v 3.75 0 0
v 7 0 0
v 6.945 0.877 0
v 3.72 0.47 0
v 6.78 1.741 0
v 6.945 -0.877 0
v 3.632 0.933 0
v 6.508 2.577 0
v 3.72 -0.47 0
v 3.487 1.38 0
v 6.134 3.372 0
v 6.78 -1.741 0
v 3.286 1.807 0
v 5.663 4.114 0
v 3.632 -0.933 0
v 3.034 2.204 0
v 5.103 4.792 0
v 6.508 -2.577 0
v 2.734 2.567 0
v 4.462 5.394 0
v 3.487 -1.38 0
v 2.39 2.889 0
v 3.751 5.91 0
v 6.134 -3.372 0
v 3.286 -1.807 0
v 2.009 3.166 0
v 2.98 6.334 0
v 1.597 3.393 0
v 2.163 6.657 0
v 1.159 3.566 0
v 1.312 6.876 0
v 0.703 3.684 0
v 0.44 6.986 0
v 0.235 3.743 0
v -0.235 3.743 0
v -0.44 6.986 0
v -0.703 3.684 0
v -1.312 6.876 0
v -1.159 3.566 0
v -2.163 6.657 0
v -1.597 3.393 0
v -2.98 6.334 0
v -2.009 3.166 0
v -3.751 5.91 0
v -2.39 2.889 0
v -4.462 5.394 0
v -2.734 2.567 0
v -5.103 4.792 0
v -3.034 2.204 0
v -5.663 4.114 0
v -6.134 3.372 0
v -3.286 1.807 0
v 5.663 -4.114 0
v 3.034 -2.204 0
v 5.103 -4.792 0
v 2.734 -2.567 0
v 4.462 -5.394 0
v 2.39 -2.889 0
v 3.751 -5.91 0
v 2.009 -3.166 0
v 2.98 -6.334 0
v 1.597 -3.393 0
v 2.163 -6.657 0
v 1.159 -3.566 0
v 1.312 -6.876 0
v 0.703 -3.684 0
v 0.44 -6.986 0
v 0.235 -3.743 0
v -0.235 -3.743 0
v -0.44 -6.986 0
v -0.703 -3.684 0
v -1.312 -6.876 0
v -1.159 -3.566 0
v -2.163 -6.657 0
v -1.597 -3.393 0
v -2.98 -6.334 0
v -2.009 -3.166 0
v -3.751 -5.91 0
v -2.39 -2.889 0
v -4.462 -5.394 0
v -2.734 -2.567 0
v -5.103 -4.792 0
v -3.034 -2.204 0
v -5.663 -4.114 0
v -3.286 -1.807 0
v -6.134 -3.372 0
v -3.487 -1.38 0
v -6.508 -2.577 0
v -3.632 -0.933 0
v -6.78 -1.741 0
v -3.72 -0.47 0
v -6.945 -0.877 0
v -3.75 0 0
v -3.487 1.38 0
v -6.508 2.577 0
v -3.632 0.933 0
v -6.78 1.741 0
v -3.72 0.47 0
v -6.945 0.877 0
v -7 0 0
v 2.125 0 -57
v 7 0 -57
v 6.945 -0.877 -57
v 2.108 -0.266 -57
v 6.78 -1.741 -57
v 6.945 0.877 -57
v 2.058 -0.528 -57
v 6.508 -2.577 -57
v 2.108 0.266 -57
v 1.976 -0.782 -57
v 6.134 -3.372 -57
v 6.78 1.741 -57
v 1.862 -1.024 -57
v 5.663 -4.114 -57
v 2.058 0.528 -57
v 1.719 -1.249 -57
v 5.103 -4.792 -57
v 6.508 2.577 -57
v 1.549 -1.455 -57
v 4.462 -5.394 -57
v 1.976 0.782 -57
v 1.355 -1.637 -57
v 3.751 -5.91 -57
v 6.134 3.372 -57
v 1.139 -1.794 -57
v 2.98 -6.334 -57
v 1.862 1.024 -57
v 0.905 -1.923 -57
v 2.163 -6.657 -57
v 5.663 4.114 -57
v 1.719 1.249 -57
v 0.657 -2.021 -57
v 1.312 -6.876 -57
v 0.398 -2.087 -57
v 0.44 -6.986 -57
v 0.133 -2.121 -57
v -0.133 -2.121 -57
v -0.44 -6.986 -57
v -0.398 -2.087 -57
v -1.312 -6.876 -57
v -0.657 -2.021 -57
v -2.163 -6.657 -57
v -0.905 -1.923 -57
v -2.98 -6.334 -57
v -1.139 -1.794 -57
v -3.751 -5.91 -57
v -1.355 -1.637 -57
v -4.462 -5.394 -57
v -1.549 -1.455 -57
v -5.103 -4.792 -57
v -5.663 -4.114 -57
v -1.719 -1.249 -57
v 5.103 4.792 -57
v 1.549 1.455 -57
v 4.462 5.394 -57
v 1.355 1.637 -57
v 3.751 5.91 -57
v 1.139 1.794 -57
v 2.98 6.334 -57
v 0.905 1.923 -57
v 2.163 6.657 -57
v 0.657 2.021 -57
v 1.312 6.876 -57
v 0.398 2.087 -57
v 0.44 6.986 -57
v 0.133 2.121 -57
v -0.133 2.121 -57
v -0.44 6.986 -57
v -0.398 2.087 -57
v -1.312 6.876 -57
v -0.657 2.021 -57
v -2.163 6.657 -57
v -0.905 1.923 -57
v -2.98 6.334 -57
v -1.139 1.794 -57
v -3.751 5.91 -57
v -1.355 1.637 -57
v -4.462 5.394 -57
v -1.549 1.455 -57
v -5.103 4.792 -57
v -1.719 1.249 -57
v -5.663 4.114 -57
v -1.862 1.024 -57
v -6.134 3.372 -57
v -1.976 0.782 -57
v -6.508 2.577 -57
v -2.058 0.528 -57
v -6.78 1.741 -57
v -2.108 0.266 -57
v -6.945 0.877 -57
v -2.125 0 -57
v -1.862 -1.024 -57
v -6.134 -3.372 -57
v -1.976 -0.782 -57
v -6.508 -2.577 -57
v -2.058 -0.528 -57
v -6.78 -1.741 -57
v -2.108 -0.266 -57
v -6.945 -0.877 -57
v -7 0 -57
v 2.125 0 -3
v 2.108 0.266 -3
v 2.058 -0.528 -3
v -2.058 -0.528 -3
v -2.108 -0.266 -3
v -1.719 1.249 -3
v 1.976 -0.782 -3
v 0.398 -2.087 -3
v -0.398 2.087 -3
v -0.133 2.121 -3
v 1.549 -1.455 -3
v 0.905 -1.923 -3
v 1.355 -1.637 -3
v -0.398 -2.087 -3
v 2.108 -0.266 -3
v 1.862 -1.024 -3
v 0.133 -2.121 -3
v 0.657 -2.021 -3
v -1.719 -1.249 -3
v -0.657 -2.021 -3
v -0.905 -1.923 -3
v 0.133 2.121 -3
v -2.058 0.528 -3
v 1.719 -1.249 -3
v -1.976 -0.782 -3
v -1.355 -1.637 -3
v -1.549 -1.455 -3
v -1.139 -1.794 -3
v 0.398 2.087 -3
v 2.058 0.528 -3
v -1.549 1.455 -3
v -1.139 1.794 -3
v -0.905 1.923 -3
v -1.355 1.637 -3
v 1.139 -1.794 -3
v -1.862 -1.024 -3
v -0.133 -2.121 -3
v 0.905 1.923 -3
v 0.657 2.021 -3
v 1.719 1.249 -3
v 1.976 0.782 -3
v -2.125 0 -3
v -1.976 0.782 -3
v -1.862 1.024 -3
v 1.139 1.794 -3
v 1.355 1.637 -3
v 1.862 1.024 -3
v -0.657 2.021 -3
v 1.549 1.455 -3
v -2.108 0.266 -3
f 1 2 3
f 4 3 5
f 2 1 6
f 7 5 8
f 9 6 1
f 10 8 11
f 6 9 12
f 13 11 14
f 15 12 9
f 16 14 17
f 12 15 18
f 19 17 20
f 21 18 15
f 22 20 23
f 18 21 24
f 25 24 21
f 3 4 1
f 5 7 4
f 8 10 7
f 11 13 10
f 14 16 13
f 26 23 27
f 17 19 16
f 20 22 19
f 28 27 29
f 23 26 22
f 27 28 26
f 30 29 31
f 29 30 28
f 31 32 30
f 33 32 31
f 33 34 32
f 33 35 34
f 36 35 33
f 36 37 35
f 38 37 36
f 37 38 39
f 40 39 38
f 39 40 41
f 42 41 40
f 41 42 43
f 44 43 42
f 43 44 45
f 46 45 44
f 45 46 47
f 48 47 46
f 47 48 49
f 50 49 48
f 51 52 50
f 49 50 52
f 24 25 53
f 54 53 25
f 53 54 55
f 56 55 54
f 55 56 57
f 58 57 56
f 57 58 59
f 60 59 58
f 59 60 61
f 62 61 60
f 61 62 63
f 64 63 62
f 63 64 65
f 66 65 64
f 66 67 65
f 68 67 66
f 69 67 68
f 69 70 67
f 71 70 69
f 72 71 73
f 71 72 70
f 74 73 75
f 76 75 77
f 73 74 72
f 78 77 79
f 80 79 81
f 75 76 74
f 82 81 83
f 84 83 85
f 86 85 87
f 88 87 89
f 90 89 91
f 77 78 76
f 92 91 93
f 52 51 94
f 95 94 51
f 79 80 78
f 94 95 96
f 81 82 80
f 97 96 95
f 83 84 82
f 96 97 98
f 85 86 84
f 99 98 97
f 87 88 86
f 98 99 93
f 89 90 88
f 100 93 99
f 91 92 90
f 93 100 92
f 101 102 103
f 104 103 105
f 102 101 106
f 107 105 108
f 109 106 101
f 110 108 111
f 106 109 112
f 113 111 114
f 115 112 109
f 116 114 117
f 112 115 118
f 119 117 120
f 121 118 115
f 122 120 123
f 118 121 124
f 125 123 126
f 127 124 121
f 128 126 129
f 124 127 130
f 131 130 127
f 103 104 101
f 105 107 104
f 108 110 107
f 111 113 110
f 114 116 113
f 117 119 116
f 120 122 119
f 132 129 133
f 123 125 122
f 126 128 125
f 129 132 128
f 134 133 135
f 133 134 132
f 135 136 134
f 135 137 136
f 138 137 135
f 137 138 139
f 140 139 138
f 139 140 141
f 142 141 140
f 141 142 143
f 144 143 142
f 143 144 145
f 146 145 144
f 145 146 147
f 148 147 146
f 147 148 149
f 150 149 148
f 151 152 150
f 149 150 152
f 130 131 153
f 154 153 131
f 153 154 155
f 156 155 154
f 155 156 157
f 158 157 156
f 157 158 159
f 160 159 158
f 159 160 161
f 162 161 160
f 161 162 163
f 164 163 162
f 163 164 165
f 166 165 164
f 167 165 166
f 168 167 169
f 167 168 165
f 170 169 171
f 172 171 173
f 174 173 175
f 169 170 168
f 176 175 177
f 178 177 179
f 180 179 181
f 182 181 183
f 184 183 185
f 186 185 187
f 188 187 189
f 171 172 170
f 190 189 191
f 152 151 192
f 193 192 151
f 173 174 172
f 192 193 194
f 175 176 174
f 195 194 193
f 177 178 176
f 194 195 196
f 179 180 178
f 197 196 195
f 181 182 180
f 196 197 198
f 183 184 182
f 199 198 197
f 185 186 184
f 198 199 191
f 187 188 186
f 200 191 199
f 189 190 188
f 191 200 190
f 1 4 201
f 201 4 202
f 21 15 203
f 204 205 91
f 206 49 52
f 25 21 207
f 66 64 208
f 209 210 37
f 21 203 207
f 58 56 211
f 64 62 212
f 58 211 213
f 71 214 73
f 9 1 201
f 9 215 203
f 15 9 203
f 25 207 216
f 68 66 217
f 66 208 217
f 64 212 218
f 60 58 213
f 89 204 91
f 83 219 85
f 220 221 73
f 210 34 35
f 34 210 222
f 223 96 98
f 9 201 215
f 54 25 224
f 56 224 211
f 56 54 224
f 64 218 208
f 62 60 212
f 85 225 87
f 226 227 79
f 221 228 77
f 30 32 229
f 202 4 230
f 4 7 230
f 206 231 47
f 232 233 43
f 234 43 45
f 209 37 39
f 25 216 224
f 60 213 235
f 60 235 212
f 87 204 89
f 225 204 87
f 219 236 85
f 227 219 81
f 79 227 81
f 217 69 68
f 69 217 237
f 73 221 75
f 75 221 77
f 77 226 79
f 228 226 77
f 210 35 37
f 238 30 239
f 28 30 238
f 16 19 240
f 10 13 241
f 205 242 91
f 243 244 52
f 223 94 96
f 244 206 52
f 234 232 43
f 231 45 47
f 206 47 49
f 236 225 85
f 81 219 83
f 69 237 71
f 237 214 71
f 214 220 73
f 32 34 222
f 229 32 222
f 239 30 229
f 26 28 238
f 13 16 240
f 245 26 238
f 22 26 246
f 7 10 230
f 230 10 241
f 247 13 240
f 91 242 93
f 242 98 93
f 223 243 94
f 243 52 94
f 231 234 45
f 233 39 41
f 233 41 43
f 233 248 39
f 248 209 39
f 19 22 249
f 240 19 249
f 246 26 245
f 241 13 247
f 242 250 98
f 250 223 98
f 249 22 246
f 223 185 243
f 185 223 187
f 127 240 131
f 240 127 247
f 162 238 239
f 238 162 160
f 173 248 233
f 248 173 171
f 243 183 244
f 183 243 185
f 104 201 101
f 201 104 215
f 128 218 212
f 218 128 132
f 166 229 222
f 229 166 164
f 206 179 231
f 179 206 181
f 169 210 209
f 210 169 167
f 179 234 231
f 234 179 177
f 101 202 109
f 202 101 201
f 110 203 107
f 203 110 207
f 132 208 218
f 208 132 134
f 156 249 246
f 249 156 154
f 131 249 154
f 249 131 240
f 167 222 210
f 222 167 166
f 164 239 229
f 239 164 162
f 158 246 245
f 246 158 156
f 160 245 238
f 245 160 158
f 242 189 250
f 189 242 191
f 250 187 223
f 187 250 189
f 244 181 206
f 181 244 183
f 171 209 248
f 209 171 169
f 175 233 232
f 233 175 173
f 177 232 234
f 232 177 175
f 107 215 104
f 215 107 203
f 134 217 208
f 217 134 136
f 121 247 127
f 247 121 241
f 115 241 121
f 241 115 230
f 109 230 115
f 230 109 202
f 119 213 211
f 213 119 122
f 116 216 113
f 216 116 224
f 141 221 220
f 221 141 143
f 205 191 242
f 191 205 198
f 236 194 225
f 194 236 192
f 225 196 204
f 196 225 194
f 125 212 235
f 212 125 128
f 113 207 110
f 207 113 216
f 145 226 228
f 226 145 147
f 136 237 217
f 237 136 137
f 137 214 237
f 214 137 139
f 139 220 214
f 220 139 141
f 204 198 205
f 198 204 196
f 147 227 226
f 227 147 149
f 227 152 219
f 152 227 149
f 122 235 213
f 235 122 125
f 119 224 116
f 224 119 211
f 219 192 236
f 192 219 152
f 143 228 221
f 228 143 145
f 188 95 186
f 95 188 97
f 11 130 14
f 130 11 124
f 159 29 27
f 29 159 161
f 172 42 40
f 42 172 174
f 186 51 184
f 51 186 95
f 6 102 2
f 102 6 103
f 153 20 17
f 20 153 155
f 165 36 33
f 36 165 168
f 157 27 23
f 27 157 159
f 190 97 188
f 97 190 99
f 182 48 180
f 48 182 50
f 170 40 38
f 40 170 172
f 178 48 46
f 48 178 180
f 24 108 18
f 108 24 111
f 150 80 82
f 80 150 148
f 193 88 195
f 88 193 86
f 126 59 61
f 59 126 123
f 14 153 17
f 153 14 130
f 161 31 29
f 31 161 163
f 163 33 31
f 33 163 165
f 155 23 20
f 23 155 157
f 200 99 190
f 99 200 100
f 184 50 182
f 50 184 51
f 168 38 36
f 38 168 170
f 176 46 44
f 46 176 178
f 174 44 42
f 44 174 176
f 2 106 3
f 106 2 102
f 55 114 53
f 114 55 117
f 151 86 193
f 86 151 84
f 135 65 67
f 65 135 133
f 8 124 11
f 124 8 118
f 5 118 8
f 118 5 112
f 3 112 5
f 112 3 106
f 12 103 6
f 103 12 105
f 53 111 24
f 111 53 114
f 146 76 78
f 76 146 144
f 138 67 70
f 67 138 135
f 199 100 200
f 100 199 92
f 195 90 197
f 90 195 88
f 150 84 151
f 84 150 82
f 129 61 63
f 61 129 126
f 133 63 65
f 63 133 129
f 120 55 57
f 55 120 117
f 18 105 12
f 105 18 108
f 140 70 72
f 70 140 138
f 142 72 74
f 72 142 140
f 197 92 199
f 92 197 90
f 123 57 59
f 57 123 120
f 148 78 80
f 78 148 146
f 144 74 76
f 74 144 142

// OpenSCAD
$fn = 50;


difference() {
	union() {
		translate(v = [0, 0, -57.0000000000]) {
			cylinder(h = 57, r = 7.0000000000);
		}
		cylinder(h = 0, r = 13.0000000000);
	}
	union() {
		translate(v = [0, 0, 0]) {
			rotate(a = [0, 0, 0]) {
				difference() {
					union() {
						#translate(v = [0, 0, -57.0000000000]) {
							cylinder(h = 57, r = 2.0000000000);
						}
						#translate(v = [0, 0, -3]) {
							cylinder(h = 3, r1 = 2.1250000000, r2 = 3.7500000000);
						}
						#translate(v = [0, 0, -57.0000000000]) {
							cylinder(h = 57, r = 2.1250000000);
						}
						#translate(v = [0, 0, -57.0000000000]) {
							cylinder(h = 57, r = 2.0000000000);
						}
					}
					union();
				}
			}
		}
	}
}
